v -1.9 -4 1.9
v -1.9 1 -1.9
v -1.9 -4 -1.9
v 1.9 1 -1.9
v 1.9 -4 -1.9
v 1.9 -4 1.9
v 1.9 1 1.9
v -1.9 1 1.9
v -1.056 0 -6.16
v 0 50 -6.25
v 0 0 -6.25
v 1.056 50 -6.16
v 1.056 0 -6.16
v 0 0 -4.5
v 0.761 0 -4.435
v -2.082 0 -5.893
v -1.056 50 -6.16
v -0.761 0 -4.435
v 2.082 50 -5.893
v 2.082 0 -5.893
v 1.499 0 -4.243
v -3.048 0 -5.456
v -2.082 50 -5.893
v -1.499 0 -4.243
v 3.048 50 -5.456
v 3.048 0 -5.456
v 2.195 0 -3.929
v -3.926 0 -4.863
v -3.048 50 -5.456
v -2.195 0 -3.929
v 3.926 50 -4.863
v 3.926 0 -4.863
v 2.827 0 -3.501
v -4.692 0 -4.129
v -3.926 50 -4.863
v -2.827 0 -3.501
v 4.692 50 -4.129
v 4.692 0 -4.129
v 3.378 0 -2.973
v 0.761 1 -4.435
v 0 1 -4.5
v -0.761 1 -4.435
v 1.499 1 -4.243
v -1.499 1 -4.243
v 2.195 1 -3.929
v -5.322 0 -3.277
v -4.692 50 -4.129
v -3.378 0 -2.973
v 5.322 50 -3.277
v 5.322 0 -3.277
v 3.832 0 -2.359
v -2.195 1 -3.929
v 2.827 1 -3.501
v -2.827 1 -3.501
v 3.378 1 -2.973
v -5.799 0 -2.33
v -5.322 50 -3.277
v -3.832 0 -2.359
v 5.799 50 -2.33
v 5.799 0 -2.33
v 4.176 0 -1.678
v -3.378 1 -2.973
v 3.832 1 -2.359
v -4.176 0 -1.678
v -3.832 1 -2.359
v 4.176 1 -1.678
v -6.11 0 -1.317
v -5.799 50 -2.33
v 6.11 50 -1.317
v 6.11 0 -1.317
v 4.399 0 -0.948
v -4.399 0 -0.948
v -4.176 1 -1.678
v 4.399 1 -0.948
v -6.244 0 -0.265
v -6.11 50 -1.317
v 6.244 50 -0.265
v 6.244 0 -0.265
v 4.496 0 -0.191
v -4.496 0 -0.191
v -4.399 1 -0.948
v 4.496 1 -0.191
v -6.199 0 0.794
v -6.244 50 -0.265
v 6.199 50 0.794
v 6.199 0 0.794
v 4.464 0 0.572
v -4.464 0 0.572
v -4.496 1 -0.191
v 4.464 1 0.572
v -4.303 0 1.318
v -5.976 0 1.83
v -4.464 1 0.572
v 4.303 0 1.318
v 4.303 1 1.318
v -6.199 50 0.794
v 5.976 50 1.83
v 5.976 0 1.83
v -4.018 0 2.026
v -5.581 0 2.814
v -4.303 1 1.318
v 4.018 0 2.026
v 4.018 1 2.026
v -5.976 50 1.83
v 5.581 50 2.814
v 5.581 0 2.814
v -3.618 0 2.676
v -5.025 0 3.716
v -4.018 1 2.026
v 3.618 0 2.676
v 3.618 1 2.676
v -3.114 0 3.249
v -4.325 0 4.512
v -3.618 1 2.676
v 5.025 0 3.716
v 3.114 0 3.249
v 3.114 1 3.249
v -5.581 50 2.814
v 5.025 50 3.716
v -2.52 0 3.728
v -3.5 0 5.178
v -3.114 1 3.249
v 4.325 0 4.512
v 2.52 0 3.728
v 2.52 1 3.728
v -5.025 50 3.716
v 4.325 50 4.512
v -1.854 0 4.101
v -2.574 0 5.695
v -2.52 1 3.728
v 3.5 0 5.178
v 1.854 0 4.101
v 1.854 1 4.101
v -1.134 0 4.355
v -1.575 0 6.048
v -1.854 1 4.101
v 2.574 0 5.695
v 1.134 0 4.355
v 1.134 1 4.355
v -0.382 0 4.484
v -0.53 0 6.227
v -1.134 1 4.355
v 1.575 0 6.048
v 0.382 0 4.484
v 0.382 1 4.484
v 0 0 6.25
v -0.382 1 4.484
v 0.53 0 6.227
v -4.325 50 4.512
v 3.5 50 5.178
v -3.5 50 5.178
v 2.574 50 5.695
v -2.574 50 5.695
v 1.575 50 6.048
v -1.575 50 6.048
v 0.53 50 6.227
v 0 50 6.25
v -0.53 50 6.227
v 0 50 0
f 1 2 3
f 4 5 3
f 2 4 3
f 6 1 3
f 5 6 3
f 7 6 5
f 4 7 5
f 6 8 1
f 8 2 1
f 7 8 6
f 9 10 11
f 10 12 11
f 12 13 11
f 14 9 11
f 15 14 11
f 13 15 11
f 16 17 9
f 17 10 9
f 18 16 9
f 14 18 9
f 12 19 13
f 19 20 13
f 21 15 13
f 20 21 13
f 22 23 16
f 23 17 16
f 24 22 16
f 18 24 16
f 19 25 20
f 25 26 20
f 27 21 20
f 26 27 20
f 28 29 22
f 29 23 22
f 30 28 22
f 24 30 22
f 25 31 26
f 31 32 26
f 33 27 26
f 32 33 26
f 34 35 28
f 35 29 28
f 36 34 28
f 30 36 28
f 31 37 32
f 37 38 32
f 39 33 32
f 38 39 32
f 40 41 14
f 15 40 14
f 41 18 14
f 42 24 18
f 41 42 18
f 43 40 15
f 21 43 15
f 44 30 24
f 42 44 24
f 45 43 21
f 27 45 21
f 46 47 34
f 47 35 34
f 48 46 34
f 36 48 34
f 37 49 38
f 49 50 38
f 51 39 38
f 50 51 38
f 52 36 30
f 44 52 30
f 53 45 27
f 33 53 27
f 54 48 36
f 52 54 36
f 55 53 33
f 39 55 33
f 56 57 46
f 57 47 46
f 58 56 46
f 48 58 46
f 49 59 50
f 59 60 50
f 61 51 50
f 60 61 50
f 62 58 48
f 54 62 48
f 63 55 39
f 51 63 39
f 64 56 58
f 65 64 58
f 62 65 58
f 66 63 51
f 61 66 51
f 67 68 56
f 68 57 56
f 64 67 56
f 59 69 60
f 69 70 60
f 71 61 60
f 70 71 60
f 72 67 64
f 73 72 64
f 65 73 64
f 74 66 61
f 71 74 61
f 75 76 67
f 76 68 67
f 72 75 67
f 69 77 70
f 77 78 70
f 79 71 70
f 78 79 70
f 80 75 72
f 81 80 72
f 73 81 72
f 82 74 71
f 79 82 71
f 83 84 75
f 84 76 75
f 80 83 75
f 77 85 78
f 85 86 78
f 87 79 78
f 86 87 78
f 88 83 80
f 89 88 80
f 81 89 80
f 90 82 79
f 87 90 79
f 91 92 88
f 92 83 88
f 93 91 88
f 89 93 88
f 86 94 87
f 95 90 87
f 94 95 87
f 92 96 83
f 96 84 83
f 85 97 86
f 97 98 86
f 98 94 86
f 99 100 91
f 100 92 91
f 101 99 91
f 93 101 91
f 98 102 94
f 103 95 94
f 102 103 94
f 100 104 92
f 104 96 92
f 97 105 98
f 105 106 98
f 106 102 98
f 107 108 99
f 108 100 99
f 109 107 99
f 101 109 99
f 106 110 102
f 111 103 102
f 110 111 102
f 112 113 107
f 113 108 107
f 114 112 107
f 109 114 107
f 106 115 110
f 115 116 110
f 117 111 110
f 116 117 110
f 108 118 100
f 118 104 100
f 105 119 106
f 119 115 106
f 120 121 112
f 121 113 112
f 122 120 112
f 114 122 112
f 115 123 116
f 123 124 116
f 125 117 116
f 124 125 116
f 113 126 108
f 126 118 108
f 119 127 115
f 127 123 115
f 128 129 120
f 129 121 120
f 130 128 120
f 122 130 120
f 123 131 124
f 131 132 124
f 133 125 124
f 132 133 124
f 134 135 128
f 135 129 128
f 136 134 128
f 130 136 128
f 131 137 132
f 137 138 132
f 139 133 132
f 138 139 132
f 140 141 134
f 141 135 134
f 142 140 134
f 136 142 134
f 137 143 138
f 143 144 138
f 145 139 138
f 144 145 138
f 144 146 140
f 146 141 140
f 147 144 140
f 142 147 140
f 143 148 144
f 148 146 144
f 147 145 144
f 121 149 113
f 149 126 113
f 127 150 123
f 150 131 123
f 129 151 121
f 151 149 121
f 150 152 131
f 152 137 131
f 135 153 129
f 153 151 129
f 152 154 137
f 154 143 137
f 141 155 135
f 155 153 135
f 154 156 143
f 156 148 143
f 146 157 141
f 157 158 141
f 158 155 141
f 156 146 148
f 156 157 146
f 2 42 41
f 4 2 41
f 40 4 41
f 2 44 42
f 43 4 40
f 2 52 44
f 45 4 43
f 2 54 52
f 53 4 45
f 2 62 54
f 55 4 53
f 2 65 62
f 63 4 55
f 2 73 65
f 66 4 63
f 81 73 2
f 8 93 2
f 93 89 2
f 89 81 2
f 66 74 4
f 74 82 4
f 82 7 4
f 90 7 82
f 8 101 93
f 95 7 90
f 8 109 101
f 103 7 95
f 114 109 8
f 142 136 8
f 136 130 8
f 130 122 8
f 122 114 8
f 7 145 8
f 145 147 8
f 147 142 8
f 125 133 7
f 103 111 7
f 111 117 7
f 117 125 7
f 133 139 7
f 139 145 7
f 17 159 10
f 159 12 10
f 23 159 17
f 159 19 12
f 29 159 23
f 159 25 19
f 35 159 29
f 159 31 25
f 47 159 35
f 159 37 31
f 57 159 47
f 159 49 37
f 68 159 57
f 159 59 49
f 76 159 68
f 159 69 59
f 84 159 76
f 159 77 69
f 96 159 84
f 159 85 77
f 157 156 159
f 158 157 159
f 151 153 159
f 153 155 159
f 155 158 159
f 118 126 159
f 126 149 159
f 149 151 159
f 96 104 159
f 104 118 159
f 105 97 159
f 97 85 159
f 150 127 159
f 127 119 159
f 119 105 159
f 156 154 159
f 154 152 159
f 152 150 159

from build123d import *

# Parameters (mm, degrees)
SKETCH1_R           = 6.25
BOSS_EXTRUDE1_DEPTH = 50
SKETCH2_R           = 4.5
CUT_EXTRUDE1_DEPTH  = 1
SKETCH3_W           = 3.8
SKETCH3_H           = 3.8
BOSS_EXTRUDE2_DEPTH = 5


with BuildPart() as part:
    # Sketch1 → Boss-Extrude1 (new body)
    with BuildSketch(Plane(origin=(0, 0, 0), x_dir=(1, 0, 0), z_dir=(0, 1, 0))):
        Circle(SKETCH1_R)
    extrude(amount=BOSS_EXTRUDE1_DEPTH)

    # Sketch2 → Cut-Extrude1 (cut)
    with BuildSketch(Plane.XZ):
        Circle(SKETCH2_R)
    extrude(amount=-CUT_EXTRUDE1_DEPTH, mode=Mode.SUBTRACT)

    # Sketch3 → Boss-Extrude2 (add)
    with BuildSketch(Plane(origin=(0, 1, 0), x_dir=(-1, 0, 0), z_dir=(0, -1, 0))):
        Rectangle(SKETCH3_W, SKETCH3_H)
    extrude(amount=BOSS_EXTRUDE2_DEPTH)


solid = part.part
